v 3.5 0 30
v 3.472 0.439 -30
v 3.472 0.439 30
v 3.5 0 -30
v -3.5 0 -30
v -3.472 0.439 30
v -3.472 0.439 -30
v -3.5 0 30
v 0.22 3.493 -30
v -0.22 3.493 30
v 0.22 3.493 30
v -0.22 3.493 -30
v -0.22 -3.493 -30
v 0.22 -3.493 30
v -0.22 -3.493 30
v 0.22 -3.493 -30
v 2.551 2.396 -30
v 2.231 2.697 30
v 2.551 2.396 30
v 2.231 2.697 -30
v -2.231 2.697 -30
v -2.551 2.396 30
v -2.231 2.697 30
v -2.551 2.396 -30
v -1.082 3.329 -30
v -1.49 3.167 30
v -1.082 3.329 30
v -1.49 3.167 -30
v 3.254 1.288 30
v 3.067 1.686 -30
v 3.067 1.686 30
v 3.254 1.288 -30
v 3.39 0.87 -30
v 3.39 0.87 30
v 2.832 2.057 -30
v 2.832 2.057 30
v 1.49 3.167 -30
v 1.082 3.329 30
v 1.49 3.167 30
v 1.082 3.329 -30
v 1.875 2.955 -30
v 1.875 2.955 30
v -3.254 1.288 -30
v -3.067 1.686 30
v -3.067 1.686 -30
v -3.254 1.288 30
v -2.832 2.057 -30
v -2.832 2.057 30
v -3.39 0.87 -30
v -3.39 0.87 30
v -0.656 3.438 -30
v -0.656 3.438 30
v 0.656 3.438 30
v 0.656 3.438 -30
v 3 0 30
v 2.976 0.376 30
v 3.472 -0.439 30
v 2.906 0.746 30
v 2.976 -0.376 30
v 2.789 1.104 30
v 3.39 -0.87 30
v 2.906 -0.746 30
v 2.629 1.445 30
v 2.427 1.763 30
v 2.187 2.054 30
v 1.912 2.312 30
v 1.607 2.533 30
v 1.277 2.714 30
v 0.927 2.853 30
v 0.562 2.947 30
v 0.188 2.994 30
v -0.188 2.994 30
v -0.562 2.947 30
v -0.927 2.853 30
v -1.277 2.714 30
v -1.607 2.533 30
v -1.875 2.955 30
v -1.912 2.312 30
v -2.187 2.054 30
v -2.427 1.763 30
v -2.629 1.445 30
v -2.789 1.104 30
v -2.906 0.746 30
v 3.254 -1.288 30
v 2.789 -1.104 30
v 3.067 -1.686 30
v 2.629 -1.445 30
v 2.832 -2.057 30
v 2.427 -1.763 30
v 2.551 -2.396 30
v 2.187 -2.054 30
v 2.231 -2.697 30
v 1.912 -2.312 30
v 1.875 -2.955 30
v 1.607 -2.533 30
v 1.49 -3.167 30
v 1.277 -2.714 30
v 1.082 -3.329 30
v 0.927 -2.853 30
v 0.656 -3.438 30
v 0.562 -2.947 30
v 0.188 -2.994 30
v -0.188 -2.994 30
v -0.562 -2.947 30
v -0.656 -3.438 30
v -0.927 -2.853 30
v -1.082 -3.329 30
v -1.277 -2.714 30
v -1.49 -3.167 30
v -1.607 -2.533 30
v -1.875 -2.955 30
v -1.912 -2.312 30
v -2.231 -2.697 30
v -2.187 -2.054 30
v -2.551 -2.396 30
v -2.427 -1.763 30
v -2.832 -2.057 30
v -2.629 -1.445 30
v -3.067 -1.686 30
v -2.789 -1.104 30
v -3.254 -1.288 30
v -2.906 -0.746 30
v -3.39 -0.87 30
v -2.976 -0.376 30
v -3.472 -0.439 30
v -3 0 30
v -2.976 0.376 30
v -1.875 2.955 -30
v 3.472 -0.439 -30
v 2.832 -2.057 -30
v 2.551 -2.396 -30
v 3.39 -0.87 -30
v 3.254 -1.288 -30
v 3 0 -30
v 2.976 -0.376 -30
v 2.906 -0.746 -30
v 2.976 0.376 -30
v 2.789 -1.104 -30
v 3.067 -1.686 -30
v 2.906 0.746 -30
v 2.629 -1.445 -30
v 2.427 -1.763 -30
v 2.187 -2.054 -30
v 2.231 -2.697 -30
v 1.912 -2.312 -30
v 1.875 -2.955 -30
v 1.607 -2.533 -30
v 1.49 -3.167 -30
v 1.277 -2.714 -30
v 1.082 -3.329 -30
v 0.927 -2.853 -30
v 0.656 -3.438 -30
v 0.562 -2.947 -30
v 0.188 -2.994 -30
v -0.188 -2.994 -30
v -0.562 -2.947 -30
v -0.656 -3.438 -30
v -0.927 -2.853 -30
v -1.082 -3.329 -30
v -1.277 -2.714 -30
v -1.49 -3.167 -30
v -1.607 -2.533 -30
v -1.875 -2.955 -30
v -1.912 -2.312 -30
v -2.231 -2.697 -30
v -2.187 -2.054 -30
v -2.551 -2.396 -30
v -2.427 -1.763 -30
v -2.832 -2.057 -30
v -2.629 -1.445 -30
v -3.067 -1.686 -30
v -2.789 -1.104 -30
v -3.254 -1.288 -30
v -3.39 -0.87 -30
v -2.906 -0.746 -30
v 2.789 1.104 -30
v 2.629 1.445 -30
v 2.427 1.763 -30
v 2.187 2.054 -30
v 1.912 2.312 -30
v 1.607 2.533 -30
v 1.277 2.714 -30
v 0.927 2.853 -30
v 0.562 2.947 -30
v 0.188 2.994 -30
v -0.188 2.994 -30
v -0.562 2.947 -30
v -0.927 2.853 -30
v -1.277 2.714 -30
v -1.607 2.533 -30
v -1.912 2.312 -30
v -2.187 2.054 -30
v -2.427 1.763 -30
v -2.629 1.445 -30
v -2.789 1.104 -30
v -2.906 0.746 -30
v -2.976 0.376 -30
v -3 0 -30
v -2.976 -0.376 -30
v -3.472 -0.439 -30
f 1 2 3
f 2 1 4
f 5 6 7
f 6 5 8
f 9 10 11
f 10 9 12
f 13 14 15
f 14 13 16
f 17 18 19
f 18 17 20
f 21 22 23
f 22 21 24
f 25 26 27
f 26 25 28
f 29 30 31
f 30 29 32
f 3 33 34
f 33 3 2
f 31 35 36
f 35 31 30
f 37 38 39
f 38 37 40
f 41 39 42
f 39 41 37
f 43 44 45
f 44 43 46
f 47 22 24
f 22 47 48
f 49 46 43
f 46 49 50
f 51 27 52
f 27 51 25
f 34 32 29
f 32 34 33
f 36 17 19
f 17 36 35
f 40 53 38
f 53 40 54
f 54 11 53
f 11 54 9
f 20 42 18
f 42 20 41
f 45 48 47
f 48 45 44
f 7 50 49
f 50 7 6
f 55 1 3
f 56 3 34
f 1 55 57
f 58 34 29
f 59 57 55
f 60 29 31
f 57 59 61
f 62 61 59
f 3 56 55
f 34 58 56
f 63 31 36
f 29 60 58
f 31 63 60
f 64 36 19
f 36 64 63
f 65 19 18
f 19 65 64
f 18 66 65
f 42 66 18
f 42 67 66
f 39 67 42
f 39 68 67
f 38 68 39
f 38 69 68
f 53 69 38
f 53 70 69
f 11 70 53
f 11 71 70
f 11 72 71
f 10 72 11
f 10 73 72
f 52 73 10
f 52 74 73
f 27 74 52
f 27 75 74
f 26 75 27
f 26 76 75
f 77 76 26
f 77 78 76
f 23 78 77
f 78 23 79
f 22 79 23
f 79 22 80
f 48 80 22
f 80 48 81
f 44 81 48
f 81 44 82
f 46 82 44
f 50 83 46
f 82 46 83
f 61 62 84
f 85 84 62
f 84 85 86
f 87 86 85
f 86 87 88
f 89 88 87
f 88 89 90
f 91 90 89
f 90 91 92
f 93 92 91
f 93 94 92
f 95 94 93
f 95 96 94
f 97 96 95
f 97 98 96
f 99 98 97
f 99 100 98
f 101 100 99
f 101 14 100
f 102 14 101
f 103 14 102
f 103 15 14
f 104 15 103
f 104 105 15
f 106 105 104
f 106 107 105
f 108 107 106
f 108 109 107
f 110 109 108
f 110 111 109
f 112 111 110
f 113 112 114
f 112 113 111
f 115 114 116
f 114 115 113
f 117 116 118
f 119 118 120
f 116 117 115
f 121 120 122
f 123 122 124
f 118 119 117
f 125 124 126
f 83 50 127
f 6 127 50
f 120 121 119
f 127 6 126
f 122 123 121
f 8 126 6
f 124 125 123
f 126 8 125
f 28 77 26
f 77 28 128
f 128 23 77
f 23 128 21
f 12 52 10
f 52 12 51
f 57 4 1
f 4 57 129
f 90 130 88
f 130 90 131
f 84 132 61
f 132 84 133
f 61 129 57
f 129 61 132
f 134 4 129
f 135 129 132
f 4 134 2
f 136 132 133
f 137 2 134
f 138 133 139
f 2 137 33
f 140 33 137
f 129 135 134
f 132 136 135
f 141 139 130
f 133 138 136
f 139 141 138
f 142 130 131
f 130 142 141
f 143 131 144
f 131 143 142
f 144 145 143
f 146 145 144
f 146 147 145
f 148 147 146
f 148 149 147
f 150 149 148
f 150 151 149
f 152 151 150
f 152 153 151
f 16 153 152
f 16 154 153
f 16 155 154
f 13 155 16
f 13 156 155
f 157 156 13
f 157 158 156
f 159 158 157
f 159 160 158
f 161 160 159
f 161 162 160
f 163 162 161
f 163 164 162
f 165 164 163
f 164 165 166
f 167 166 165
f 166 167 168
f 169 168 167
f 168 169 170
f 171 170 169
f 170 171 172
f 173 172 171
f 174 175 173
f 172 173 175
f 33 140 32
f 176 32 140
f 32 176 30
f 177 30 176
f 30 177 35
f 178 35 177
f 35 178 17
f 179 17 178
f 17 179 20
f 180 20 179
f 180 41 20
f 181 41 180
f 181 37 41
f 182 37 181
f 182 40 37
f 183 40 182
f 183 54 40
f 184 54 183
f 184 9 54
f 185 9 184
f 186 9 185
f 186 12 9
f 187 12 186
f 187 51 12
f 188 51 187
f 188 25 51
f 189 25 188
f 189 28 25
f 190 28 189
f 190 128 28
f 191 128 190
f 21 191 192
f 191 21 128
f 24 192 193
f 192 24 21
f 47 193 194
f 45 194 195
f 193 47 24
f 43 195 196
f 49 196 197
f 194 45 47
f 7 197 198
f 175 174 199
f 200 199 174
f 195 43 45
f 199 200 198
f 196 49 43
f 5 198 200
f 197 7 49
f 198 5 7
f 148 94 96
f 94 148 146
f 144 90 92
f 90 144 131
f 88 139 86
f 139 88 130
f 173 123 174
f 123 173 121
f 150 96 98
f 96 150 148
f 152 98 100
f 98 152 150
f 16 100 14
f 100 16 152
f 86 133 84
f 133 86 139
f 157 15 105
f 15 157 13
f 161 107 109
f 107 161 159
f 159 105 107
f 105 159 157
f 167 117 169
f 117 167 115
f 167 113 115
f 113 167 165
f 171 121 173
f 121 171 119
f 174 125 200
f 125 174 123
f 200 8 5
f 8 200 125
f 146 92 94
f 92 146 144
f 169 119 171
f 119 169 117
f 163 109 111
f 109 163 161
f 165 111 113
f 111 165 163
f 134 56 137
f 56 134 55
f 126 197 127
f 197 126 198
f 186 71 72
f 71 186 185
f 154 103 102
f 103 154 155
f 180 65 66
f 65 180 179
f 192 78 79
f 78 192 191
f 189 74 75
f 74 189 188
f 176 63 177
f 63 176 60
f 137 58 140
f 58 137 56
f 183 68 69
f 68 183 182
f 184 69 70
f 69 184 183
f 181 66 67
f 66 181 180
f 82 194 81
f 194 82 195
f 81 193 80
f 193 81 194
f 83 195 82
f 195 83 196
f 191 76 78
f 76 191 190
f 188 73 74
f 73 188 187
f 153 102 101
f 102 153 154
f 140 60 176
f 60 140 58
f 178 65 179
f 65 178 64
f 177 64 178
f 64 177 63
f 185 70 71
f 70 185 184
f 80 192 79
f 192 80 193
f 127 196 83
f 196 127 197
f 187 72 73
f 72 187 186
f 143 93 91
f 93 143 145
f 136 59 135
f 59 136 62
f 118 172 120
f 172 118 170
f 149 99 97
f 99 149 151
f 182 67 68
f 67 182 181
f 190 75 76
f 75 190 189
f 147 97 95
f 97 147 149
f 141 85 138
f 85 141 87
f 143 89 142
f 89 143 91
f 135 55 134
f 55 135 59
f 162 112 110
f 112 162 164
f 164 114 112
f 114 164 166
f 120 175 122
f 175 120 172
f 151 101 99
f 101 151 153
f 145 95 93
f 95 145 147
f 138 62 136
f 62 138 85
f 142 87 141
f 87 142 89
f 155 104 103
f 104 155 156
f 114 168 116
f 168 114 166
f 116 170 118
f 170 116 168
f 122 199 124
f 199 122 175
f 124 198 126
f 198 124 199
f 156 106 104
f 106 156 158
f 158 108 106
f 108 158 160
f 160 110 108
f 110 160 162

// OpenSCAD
$fn = 50;


difference() {
	union() {
		translate(v = [0, 0, -30.0000000000]) {
			cylinder(h = 60, r = 3.5000000000);
		}
	}
	union() {
		translate(v = [0, 0, -100.0000000000]) {
			cylinder(h = 200, r = 3);
		}
	}
}
